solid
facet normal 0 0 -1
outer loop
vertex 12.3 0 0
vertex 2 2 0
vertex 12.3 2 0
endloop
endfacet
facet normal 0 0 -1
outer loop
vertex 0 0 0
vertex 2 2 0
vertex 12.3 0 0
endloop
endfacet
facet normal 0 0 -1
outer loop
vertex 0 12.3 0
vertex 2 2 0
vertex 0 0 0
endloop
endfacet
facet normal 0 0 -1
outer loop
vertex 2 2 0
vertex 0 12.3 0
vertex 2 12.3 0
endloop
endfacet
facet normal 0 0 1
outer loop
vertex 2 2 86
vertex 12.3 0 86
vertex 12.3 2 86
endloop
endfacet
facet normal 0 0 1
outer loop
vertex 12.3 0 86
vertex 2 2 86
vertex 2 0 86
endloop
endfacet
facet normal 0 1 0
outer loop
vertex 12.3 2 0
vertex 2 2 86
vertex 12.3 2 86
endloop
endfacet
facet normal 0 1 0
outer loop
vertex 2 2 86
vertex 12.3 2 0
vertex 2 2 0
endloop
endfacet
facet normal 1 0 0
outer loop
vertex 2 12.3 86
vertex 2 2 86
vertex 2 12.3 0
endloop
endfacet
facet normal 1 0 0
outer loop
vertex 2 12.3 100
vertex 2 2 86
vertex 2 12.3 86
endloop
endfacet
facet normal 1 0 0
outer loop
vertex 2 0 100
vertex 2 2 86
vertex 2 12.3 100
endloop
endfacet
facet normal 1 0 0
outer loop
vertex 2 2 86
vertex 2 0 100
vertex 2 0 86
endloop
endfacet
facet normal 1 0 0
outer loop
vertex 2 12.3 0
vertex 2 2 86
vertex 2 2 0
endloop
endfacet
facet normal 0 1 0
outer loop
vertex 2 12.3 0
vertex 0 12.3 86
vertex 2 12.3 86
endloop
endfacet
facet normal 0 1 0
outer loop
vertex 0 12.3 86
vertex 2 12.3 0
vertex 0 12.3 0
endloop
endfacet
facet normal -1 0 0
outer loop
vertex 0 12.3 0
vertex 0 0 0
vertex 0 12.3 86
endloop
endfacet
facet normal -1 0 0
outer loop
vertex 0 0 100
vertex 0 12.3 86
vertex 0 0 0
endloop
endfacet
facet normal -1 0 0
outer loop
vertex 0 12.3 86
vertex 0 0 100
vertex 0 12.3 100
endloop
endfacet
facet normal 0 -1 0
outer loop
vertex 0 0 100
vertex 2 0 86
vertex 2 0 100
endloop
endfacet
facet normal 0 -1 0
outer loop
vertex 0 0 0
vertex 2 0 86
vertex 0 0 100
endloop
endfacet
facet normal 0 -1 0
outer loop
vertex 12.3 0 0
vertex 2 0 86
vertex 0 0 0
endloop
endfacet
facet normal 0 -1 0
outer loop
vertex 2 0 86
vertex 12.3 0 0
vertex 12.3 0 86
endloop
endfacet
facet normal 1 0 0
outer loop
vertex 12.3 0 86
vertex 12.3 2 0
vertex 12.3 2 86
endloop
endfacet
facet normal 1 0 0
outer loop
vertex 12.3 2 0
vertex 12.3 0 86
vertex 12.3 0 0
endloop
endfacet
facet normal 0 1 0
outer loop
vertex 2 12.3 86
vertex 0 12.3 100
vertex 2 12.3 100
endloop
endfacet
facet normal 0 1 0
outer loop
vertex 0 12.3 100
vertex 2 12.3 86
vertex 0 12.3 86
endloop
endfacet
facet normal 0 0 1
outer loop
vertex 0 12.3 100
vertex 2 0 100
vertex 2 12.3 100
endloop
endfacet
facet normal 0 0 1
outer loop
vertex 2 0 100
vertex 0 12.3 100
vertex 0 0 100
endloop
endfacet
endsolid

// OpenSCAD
// L形药盒夹（末端I形推板） - 修改版：末端去掉底板
// 前段为L形角码（底板+侧板），卡在药盒相邻两条边上固定定位；
// 末端14mm底板移除，只留侧板（I形），用以将药盒推出。
// part_id 可选：0=装配效果，1=单独打印件，2=分解示意

part_id = 1;

// ========== 药盒外部参考尺寸（来自药盒子.scad） ==========
box_w = 65.3;      // 药盒外宽
box_d = 45.5;      // 药盒外深
box_h = 13.5;      // 药盒外高
wall  = 1.6;       // 药盒壁厚

// ========== L形夹设计参数（可调） ==========
clip_l     = 100;   // 总长度（L段 + I段）
base_w     = 10;    // 底板宽度：从角线向外延伸，夹住药盒底面
side_h     = 10;    // 侧板高度：从底板向上延伸，夹住药盒侧面
thickness  = 2.0;   // 两块板的板材厚度
inner_r    = 0;     // L形内角圆弧半径；0为直角直板
gap        = 0.3;   // 内侧安装间隙，便于卡入药盒

// ========== 推板参数 ==========
push_l     = 14;    // 末端I形推板长度（移除底板，仅保留侧板）

// ========== 衍生尺寸 ==========
l_l = clip_l - push_l;  // L形段长度

eps = 0.01;

// ========== L形截面（2D） - 底板实体，侧板实体 ==========
module l_profile_2d() {
    difference() {
        union() {
            // 底板截面：沿X方向（实体，无镂空）
            square([base_w + gap + thickness, thickness]);

            // 侧板截面：沿Y方向（实体，无镂空）
            square([thickness, side_h + gap + thickness]);
        }

        // 内角挖掉圆弧填角（使内角圆滑，便于药盒放入）
        if (inner_r > 0) {
            translate([thickness + gap + inner_r, thickness + gap + inner_r])
                circle(r = inner_r, $fn = 60);
            translate([thickness + gap, thickness + gap])
                square([inner_r, inner_r]);
        }
    }
}

// ========== I形截面（2D）：仅侧板（实体，无镂空） ==========
module i_profile_2d() {
    square([thickness, side_h + gap + thickness]);
}

// ========== 带推板的L形夹主体（3D） ==========
// 前段L形 + 末段I形推板
module l_push_clip() {
    // L形段（前段）
    linear_extrude(height = l_l, center = false)
        l_profile_2d();
    // I形推板段（末段，紧接L形段）
    translate([0, 0, l_l])
        linear_extrude(height = push_l, center = false)
            i_profile_2d();
}

// ========== 药盒简化参考体（仅用于装配预览） ==========
module box_reference() {
    color("SteelBlue", 0.3)
        cube([box_w, box_d, box_h]);
}

// ========== 装配效果：L形夹套在药盒右后角 ==========
module assembly() {
    box_reference();

    translate([box_w, box_d, 0])
        rotate([0, 0, 180])
            l_push_clip();
}

// ========== 分解示意 ==========
module exploded_view() {
    box_reference();

    translate([box_w + 10, box_d, 0])
        rotate([0, 0, 180])
            l_push_clip();
}

// ========== 输出 ==========
if (part_id == 1) {
    l_push_clip();
} else if (part_id == 2) {
    exploded_view();
} else {
    assembly();
}
